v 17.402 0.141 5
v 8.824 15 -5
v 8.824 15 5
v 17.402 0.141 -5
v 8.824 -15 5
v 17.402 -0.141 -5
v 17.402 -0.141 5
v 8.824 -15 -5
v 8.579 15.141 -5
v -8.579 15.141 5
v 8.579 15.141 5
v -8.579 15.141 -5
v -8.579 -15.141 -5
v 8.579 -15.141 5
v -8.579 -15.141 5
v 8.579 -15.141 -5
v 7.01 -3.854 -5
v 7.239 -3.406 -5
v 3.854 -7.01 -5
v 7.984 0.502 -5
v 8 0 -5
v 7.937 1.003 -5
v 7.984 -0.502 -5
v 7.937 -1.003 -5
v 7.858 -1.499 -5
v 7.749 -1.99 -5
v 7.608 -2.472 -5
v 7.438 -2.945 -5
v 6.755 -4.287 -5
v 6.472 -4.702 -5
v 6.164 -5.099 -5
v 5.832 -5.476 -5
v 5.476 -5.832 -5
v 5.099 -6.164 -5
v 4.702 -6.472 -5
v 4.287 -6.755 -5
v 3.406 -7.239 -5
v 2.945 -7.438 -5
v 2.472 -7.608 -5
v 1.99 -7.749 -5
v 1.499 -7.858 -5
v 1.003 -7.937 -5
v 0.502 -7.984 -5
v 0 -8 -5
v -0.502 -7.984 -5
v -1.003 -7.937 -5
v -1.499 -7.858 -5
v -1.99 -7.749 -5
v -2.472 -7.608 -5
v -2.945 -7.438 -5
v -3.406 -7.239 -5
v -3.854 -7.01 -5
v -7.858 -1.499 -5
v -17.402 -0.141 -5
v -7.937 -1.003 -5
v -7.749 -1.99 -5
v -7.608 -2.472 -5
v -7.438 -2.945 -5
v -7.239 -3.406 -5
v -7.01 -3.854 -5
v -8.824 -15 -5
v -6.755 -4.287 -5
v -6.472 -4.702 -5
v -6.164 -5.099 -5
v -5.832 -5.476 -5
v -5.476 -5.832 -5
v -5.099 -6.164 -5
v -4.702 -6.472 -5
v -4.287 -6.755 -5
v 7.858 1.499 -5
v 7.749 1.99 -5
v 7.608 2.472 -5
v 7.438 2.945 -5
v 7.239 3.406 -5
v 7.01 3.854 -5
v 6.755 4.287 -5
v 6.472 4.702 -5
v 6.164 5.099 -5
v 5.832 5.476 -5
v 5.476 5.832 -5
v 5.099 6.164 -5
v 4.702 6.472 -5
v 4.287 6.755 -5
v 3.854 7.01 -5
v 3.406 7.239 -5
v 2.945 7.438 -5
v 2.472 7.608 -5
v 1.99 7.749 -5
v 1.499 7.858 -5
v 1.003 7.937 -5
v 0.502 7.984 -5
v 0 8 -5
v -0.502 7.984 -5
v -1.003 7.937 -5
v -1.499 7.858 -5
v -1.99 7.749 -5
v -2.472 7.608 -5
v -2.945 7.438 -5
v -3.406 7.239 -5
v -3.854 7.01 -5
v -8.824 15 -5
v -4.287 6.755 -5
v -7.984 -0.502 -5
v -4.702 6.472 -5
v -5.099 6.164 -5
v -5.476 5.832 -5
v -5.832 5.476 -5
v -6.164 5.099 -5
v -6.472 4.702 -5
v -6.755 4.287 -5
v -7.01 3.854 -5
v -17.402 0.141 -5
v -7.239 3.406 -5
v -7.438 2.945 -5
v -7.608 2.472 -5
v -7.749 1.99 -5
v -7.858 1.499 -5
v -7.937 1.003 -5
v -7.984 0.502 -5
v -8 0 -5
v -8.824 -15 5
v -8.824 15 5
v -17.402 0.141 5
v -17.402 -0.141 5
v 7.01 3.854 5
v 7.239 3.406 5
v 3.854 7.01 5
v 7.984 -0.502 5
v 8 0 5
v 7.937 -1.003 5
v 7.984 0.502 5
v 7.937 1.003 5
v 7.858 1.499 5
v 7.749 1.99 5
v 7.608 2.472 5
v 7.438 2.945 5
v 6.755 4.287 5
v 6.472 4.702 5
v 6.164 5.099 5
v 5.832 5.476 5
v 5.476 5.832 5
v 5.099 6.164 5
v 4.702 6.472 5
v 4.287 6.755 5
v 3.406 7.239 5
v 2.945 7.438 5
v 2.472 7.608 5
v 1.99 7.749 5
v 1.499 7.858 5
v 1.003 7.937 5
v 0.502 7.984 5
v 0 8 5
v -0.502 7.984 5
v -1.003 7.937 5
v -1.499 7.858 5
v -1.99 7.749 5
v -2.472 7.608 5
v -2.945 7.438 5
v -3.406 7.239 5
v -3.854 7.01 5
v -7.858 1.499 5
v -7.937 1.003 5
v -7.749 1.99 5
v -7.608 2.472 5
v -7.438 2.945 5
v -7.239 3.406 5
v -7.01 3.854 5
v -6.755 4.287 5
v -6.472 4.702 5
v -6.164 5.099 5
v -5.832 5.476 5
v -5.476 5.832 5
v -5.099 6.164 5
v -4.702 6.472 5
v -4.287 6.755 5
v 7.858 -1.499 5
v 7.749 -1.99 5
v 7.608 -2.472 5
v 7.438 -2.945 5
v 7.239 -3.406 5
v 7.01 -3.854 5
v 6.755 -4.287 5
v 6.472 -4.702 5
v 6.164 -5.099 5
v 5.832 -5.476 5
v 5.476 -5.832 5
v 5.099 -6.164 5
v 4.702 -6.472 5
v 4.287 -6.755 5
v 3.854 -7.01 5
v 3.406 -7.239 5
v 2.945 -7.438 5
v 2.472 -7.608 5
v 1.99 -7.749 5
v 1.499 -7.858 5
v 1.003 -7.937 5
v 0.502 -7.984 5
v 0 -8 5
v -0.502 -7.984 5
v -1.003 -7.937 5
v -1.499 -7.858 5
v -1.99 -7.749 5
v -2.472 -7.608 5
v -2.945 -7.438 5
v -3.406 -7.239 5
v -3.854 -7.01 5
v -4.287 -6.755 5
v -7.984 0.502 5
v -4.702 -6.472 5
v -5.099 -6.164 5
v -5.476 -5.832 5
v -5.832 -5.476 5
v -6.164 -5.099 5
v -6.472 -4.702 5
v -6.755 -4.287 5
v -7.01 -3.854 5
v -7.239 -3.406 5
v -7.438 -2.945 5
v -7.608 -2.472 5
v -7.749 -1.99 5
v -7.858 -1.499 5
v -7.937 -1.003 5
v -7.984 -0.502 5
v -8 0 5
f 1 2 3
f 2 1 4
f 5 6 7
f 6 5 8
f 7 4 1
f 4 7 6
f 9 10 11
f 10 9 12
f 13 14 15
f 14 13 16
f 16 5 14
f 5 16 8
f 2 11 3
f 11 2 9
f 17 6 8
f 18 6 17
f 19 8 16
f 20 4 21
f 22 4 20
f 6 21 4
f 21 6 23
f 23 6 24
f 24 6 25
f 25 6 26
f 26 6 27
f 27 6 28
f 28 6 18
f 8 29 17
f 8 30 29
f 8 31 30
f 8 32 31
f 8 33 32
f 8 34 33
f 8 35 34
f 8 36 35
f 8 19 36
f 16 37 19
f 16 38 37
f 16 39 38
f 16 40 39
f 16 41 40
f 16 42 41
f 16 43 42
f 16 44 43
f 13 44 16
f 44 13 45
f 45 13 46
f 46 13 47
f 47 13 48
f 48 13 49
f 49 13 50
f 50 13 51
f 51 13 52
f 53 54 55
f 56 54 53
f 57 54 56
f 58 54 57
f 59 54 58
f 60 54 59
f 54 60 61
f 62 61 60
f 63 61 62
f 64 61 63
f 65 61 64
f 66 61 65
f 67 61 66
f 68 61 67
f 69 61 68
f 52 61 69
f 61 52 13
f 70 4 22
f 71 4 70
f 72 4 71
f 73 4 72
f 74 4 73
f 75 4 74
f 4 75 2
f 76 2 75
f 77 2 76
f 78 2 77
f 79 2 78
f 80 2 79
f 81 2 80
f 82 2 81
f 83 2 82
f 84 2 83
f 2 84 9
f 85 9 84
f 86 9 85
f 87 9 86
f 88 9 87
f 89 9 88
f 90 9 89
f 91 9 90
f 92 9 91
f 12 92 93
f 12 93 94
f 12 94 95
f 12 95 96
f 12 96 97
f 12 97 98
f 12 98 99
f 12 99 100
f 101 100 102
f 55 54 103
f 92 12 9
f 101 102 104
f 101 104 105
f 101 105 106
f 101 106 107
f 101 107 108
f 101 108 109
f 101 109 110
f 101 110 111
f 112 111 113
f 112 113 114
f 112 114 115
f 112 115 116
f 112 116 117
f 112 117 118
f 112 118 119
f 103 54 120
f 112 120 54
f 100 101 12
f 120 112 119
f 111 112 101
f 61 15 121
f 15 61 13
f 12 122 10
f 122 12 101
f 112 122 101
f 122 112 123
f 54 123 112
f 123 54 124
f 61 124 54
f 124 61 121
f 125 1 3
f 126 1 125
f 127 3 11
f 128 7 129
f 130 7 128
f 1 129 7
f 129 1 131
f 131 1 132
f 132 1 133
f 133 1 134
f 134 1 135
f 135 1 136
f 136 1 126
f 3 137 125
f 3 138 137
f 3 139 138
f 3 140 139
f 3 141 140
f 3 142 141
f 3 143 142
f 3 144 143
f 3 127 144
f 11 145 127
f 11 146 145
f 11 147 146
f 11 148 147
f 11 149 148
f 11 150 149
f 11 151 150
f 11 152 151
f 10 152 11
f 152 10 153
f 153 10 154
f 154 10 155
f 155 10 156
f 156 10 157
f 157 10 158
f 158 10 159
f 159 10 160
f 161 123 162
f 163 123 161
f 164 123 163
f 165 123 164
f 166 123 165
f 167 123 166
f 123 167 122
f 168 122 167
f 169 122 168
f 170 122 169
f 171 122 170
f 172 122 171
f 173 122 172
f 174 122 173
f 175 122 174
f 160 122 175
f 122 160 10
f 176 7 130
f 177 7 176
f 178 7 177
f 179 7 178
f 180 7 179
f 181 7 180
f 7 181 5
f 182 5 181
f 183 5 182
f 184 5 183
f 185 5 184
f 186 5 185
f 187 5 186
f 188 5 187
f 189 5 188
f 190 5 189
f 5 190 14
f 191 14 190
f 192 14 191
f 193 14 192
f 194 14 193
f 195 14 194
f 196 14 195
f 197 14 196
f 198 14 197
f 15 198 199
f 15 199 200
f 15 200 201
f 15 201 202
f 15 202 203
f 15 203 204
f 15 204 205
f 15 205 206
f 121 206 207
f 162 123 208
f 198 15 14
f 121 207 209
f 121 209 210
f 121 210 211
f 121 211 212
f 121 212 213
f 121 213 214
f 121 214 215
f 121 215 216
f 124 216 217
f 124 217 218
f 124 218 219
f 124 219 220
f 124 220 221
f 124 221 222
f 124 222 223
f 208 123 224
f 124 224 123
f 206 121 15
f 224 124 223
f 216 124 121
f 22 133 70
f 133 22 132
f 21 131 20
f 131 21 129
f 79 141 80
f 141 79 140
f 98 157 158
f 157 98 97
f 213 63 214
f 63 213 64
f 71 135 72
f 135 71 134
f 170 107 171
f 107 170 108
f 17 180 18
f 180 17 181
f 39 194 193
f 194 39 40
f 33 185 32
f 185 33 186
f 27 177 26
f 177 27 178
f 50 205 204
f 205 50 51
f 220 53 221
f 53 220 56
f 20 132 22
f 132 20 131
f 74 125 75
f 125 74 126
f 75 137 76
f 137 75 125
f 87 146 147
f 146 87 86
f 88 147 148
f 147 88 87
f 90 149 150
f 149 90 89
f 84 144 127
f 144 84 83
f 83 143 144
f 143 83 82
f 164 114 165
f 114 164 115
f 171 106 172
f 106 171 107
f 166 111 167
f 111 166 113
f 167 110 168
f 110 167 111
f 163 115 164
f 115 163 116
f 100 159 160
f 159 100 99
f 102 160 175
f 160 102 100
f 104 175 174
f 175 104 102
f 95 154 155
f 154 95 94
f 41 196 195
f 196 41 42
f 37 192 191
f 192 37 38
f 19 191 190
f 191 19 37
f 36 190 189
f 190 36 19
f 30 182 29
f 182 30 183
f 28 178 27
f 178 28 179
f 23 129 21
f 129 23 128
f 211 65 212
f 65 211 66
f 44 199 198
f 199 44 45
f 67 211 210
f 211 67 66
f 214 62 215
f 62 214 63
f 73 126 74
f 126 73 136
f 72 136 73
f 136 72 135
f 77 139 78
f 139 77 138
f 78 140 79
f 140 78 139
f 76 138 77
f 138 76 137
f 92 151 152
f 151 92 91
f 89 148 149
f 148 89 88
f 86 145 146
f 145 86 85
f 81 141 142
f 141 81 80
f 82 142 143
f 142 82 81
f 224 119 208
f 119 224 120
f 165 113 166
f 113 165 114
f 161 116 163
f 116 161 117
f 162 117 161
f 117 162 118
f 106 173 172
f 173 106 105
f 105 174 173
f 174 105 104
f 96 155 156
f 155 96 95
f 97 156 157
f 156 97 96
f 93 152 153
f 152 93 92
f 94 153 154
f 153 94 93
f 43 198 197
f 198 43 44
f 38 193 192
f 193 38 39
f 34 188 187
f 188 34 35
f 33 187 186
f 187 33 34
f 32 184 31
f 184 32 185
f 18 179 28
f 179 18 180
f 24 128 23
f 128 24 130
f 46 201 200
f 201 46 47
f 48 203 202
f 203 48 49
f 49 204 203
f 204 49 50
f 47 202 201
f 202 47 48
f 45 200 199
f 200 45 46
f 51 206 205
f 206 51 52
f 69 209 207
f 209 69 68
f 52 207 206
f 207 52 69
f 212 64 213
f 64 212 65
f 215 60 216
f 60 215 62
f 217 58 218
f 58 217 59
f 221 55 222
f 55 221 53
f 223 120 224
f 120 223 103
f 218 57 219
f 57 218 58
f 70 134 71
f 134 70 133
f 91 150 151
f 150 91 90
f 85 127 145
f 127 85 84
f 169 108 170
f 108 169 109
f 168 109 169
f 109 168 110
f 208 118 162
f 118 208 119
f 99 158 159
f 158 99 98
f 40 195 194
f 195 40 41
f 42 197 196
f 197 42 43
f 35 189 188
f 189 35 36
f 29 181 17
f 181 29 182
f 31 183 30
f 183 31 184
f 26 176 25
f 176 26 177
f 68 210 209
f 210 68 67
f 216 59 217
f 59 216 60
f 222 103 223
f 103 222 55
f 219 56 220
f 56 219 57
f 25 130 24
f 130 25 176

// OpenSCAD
//--------------------------------
// Réalisation hexagone avec trou
//--------------------------------
$fn = 100;
difference () {
    fhex(30,10);
    translate([0,0,-10]) cylinder(r=8,h=40);
}

module phex(wid,rad,height){
hull(){
translate([wid/2-rad,0,0])cylinder(r=rad,h=height);
rotate([0,0,60])translate([wid/2-rad,0,0])cylinder(r=rad,h=height);
rotate([0,0,120])translate([wid/2-rad,0,0])cylinder(r=rad,h=height);
rotate([0,0,180])translate([wid/2-rad,0,0])cylinder(r=rad,h=height);
rotate([0,0,240])translate([wid/2-rad,0,0])cylinder(r=rad,h=height);
rotate([0,0,300])translate([wid/2-rad,0,0])cylinder(r=rad,h=height);

}
}

module fhex(wid,height){
hull(){
cube([wid/1.7,wid,height],center = true);
rotate([0,0,120])cube([wid/1.7,wid,height],center = true);
rotate([0,0,240])cube([wid/1.7,wid,height],center = true);
}
}
